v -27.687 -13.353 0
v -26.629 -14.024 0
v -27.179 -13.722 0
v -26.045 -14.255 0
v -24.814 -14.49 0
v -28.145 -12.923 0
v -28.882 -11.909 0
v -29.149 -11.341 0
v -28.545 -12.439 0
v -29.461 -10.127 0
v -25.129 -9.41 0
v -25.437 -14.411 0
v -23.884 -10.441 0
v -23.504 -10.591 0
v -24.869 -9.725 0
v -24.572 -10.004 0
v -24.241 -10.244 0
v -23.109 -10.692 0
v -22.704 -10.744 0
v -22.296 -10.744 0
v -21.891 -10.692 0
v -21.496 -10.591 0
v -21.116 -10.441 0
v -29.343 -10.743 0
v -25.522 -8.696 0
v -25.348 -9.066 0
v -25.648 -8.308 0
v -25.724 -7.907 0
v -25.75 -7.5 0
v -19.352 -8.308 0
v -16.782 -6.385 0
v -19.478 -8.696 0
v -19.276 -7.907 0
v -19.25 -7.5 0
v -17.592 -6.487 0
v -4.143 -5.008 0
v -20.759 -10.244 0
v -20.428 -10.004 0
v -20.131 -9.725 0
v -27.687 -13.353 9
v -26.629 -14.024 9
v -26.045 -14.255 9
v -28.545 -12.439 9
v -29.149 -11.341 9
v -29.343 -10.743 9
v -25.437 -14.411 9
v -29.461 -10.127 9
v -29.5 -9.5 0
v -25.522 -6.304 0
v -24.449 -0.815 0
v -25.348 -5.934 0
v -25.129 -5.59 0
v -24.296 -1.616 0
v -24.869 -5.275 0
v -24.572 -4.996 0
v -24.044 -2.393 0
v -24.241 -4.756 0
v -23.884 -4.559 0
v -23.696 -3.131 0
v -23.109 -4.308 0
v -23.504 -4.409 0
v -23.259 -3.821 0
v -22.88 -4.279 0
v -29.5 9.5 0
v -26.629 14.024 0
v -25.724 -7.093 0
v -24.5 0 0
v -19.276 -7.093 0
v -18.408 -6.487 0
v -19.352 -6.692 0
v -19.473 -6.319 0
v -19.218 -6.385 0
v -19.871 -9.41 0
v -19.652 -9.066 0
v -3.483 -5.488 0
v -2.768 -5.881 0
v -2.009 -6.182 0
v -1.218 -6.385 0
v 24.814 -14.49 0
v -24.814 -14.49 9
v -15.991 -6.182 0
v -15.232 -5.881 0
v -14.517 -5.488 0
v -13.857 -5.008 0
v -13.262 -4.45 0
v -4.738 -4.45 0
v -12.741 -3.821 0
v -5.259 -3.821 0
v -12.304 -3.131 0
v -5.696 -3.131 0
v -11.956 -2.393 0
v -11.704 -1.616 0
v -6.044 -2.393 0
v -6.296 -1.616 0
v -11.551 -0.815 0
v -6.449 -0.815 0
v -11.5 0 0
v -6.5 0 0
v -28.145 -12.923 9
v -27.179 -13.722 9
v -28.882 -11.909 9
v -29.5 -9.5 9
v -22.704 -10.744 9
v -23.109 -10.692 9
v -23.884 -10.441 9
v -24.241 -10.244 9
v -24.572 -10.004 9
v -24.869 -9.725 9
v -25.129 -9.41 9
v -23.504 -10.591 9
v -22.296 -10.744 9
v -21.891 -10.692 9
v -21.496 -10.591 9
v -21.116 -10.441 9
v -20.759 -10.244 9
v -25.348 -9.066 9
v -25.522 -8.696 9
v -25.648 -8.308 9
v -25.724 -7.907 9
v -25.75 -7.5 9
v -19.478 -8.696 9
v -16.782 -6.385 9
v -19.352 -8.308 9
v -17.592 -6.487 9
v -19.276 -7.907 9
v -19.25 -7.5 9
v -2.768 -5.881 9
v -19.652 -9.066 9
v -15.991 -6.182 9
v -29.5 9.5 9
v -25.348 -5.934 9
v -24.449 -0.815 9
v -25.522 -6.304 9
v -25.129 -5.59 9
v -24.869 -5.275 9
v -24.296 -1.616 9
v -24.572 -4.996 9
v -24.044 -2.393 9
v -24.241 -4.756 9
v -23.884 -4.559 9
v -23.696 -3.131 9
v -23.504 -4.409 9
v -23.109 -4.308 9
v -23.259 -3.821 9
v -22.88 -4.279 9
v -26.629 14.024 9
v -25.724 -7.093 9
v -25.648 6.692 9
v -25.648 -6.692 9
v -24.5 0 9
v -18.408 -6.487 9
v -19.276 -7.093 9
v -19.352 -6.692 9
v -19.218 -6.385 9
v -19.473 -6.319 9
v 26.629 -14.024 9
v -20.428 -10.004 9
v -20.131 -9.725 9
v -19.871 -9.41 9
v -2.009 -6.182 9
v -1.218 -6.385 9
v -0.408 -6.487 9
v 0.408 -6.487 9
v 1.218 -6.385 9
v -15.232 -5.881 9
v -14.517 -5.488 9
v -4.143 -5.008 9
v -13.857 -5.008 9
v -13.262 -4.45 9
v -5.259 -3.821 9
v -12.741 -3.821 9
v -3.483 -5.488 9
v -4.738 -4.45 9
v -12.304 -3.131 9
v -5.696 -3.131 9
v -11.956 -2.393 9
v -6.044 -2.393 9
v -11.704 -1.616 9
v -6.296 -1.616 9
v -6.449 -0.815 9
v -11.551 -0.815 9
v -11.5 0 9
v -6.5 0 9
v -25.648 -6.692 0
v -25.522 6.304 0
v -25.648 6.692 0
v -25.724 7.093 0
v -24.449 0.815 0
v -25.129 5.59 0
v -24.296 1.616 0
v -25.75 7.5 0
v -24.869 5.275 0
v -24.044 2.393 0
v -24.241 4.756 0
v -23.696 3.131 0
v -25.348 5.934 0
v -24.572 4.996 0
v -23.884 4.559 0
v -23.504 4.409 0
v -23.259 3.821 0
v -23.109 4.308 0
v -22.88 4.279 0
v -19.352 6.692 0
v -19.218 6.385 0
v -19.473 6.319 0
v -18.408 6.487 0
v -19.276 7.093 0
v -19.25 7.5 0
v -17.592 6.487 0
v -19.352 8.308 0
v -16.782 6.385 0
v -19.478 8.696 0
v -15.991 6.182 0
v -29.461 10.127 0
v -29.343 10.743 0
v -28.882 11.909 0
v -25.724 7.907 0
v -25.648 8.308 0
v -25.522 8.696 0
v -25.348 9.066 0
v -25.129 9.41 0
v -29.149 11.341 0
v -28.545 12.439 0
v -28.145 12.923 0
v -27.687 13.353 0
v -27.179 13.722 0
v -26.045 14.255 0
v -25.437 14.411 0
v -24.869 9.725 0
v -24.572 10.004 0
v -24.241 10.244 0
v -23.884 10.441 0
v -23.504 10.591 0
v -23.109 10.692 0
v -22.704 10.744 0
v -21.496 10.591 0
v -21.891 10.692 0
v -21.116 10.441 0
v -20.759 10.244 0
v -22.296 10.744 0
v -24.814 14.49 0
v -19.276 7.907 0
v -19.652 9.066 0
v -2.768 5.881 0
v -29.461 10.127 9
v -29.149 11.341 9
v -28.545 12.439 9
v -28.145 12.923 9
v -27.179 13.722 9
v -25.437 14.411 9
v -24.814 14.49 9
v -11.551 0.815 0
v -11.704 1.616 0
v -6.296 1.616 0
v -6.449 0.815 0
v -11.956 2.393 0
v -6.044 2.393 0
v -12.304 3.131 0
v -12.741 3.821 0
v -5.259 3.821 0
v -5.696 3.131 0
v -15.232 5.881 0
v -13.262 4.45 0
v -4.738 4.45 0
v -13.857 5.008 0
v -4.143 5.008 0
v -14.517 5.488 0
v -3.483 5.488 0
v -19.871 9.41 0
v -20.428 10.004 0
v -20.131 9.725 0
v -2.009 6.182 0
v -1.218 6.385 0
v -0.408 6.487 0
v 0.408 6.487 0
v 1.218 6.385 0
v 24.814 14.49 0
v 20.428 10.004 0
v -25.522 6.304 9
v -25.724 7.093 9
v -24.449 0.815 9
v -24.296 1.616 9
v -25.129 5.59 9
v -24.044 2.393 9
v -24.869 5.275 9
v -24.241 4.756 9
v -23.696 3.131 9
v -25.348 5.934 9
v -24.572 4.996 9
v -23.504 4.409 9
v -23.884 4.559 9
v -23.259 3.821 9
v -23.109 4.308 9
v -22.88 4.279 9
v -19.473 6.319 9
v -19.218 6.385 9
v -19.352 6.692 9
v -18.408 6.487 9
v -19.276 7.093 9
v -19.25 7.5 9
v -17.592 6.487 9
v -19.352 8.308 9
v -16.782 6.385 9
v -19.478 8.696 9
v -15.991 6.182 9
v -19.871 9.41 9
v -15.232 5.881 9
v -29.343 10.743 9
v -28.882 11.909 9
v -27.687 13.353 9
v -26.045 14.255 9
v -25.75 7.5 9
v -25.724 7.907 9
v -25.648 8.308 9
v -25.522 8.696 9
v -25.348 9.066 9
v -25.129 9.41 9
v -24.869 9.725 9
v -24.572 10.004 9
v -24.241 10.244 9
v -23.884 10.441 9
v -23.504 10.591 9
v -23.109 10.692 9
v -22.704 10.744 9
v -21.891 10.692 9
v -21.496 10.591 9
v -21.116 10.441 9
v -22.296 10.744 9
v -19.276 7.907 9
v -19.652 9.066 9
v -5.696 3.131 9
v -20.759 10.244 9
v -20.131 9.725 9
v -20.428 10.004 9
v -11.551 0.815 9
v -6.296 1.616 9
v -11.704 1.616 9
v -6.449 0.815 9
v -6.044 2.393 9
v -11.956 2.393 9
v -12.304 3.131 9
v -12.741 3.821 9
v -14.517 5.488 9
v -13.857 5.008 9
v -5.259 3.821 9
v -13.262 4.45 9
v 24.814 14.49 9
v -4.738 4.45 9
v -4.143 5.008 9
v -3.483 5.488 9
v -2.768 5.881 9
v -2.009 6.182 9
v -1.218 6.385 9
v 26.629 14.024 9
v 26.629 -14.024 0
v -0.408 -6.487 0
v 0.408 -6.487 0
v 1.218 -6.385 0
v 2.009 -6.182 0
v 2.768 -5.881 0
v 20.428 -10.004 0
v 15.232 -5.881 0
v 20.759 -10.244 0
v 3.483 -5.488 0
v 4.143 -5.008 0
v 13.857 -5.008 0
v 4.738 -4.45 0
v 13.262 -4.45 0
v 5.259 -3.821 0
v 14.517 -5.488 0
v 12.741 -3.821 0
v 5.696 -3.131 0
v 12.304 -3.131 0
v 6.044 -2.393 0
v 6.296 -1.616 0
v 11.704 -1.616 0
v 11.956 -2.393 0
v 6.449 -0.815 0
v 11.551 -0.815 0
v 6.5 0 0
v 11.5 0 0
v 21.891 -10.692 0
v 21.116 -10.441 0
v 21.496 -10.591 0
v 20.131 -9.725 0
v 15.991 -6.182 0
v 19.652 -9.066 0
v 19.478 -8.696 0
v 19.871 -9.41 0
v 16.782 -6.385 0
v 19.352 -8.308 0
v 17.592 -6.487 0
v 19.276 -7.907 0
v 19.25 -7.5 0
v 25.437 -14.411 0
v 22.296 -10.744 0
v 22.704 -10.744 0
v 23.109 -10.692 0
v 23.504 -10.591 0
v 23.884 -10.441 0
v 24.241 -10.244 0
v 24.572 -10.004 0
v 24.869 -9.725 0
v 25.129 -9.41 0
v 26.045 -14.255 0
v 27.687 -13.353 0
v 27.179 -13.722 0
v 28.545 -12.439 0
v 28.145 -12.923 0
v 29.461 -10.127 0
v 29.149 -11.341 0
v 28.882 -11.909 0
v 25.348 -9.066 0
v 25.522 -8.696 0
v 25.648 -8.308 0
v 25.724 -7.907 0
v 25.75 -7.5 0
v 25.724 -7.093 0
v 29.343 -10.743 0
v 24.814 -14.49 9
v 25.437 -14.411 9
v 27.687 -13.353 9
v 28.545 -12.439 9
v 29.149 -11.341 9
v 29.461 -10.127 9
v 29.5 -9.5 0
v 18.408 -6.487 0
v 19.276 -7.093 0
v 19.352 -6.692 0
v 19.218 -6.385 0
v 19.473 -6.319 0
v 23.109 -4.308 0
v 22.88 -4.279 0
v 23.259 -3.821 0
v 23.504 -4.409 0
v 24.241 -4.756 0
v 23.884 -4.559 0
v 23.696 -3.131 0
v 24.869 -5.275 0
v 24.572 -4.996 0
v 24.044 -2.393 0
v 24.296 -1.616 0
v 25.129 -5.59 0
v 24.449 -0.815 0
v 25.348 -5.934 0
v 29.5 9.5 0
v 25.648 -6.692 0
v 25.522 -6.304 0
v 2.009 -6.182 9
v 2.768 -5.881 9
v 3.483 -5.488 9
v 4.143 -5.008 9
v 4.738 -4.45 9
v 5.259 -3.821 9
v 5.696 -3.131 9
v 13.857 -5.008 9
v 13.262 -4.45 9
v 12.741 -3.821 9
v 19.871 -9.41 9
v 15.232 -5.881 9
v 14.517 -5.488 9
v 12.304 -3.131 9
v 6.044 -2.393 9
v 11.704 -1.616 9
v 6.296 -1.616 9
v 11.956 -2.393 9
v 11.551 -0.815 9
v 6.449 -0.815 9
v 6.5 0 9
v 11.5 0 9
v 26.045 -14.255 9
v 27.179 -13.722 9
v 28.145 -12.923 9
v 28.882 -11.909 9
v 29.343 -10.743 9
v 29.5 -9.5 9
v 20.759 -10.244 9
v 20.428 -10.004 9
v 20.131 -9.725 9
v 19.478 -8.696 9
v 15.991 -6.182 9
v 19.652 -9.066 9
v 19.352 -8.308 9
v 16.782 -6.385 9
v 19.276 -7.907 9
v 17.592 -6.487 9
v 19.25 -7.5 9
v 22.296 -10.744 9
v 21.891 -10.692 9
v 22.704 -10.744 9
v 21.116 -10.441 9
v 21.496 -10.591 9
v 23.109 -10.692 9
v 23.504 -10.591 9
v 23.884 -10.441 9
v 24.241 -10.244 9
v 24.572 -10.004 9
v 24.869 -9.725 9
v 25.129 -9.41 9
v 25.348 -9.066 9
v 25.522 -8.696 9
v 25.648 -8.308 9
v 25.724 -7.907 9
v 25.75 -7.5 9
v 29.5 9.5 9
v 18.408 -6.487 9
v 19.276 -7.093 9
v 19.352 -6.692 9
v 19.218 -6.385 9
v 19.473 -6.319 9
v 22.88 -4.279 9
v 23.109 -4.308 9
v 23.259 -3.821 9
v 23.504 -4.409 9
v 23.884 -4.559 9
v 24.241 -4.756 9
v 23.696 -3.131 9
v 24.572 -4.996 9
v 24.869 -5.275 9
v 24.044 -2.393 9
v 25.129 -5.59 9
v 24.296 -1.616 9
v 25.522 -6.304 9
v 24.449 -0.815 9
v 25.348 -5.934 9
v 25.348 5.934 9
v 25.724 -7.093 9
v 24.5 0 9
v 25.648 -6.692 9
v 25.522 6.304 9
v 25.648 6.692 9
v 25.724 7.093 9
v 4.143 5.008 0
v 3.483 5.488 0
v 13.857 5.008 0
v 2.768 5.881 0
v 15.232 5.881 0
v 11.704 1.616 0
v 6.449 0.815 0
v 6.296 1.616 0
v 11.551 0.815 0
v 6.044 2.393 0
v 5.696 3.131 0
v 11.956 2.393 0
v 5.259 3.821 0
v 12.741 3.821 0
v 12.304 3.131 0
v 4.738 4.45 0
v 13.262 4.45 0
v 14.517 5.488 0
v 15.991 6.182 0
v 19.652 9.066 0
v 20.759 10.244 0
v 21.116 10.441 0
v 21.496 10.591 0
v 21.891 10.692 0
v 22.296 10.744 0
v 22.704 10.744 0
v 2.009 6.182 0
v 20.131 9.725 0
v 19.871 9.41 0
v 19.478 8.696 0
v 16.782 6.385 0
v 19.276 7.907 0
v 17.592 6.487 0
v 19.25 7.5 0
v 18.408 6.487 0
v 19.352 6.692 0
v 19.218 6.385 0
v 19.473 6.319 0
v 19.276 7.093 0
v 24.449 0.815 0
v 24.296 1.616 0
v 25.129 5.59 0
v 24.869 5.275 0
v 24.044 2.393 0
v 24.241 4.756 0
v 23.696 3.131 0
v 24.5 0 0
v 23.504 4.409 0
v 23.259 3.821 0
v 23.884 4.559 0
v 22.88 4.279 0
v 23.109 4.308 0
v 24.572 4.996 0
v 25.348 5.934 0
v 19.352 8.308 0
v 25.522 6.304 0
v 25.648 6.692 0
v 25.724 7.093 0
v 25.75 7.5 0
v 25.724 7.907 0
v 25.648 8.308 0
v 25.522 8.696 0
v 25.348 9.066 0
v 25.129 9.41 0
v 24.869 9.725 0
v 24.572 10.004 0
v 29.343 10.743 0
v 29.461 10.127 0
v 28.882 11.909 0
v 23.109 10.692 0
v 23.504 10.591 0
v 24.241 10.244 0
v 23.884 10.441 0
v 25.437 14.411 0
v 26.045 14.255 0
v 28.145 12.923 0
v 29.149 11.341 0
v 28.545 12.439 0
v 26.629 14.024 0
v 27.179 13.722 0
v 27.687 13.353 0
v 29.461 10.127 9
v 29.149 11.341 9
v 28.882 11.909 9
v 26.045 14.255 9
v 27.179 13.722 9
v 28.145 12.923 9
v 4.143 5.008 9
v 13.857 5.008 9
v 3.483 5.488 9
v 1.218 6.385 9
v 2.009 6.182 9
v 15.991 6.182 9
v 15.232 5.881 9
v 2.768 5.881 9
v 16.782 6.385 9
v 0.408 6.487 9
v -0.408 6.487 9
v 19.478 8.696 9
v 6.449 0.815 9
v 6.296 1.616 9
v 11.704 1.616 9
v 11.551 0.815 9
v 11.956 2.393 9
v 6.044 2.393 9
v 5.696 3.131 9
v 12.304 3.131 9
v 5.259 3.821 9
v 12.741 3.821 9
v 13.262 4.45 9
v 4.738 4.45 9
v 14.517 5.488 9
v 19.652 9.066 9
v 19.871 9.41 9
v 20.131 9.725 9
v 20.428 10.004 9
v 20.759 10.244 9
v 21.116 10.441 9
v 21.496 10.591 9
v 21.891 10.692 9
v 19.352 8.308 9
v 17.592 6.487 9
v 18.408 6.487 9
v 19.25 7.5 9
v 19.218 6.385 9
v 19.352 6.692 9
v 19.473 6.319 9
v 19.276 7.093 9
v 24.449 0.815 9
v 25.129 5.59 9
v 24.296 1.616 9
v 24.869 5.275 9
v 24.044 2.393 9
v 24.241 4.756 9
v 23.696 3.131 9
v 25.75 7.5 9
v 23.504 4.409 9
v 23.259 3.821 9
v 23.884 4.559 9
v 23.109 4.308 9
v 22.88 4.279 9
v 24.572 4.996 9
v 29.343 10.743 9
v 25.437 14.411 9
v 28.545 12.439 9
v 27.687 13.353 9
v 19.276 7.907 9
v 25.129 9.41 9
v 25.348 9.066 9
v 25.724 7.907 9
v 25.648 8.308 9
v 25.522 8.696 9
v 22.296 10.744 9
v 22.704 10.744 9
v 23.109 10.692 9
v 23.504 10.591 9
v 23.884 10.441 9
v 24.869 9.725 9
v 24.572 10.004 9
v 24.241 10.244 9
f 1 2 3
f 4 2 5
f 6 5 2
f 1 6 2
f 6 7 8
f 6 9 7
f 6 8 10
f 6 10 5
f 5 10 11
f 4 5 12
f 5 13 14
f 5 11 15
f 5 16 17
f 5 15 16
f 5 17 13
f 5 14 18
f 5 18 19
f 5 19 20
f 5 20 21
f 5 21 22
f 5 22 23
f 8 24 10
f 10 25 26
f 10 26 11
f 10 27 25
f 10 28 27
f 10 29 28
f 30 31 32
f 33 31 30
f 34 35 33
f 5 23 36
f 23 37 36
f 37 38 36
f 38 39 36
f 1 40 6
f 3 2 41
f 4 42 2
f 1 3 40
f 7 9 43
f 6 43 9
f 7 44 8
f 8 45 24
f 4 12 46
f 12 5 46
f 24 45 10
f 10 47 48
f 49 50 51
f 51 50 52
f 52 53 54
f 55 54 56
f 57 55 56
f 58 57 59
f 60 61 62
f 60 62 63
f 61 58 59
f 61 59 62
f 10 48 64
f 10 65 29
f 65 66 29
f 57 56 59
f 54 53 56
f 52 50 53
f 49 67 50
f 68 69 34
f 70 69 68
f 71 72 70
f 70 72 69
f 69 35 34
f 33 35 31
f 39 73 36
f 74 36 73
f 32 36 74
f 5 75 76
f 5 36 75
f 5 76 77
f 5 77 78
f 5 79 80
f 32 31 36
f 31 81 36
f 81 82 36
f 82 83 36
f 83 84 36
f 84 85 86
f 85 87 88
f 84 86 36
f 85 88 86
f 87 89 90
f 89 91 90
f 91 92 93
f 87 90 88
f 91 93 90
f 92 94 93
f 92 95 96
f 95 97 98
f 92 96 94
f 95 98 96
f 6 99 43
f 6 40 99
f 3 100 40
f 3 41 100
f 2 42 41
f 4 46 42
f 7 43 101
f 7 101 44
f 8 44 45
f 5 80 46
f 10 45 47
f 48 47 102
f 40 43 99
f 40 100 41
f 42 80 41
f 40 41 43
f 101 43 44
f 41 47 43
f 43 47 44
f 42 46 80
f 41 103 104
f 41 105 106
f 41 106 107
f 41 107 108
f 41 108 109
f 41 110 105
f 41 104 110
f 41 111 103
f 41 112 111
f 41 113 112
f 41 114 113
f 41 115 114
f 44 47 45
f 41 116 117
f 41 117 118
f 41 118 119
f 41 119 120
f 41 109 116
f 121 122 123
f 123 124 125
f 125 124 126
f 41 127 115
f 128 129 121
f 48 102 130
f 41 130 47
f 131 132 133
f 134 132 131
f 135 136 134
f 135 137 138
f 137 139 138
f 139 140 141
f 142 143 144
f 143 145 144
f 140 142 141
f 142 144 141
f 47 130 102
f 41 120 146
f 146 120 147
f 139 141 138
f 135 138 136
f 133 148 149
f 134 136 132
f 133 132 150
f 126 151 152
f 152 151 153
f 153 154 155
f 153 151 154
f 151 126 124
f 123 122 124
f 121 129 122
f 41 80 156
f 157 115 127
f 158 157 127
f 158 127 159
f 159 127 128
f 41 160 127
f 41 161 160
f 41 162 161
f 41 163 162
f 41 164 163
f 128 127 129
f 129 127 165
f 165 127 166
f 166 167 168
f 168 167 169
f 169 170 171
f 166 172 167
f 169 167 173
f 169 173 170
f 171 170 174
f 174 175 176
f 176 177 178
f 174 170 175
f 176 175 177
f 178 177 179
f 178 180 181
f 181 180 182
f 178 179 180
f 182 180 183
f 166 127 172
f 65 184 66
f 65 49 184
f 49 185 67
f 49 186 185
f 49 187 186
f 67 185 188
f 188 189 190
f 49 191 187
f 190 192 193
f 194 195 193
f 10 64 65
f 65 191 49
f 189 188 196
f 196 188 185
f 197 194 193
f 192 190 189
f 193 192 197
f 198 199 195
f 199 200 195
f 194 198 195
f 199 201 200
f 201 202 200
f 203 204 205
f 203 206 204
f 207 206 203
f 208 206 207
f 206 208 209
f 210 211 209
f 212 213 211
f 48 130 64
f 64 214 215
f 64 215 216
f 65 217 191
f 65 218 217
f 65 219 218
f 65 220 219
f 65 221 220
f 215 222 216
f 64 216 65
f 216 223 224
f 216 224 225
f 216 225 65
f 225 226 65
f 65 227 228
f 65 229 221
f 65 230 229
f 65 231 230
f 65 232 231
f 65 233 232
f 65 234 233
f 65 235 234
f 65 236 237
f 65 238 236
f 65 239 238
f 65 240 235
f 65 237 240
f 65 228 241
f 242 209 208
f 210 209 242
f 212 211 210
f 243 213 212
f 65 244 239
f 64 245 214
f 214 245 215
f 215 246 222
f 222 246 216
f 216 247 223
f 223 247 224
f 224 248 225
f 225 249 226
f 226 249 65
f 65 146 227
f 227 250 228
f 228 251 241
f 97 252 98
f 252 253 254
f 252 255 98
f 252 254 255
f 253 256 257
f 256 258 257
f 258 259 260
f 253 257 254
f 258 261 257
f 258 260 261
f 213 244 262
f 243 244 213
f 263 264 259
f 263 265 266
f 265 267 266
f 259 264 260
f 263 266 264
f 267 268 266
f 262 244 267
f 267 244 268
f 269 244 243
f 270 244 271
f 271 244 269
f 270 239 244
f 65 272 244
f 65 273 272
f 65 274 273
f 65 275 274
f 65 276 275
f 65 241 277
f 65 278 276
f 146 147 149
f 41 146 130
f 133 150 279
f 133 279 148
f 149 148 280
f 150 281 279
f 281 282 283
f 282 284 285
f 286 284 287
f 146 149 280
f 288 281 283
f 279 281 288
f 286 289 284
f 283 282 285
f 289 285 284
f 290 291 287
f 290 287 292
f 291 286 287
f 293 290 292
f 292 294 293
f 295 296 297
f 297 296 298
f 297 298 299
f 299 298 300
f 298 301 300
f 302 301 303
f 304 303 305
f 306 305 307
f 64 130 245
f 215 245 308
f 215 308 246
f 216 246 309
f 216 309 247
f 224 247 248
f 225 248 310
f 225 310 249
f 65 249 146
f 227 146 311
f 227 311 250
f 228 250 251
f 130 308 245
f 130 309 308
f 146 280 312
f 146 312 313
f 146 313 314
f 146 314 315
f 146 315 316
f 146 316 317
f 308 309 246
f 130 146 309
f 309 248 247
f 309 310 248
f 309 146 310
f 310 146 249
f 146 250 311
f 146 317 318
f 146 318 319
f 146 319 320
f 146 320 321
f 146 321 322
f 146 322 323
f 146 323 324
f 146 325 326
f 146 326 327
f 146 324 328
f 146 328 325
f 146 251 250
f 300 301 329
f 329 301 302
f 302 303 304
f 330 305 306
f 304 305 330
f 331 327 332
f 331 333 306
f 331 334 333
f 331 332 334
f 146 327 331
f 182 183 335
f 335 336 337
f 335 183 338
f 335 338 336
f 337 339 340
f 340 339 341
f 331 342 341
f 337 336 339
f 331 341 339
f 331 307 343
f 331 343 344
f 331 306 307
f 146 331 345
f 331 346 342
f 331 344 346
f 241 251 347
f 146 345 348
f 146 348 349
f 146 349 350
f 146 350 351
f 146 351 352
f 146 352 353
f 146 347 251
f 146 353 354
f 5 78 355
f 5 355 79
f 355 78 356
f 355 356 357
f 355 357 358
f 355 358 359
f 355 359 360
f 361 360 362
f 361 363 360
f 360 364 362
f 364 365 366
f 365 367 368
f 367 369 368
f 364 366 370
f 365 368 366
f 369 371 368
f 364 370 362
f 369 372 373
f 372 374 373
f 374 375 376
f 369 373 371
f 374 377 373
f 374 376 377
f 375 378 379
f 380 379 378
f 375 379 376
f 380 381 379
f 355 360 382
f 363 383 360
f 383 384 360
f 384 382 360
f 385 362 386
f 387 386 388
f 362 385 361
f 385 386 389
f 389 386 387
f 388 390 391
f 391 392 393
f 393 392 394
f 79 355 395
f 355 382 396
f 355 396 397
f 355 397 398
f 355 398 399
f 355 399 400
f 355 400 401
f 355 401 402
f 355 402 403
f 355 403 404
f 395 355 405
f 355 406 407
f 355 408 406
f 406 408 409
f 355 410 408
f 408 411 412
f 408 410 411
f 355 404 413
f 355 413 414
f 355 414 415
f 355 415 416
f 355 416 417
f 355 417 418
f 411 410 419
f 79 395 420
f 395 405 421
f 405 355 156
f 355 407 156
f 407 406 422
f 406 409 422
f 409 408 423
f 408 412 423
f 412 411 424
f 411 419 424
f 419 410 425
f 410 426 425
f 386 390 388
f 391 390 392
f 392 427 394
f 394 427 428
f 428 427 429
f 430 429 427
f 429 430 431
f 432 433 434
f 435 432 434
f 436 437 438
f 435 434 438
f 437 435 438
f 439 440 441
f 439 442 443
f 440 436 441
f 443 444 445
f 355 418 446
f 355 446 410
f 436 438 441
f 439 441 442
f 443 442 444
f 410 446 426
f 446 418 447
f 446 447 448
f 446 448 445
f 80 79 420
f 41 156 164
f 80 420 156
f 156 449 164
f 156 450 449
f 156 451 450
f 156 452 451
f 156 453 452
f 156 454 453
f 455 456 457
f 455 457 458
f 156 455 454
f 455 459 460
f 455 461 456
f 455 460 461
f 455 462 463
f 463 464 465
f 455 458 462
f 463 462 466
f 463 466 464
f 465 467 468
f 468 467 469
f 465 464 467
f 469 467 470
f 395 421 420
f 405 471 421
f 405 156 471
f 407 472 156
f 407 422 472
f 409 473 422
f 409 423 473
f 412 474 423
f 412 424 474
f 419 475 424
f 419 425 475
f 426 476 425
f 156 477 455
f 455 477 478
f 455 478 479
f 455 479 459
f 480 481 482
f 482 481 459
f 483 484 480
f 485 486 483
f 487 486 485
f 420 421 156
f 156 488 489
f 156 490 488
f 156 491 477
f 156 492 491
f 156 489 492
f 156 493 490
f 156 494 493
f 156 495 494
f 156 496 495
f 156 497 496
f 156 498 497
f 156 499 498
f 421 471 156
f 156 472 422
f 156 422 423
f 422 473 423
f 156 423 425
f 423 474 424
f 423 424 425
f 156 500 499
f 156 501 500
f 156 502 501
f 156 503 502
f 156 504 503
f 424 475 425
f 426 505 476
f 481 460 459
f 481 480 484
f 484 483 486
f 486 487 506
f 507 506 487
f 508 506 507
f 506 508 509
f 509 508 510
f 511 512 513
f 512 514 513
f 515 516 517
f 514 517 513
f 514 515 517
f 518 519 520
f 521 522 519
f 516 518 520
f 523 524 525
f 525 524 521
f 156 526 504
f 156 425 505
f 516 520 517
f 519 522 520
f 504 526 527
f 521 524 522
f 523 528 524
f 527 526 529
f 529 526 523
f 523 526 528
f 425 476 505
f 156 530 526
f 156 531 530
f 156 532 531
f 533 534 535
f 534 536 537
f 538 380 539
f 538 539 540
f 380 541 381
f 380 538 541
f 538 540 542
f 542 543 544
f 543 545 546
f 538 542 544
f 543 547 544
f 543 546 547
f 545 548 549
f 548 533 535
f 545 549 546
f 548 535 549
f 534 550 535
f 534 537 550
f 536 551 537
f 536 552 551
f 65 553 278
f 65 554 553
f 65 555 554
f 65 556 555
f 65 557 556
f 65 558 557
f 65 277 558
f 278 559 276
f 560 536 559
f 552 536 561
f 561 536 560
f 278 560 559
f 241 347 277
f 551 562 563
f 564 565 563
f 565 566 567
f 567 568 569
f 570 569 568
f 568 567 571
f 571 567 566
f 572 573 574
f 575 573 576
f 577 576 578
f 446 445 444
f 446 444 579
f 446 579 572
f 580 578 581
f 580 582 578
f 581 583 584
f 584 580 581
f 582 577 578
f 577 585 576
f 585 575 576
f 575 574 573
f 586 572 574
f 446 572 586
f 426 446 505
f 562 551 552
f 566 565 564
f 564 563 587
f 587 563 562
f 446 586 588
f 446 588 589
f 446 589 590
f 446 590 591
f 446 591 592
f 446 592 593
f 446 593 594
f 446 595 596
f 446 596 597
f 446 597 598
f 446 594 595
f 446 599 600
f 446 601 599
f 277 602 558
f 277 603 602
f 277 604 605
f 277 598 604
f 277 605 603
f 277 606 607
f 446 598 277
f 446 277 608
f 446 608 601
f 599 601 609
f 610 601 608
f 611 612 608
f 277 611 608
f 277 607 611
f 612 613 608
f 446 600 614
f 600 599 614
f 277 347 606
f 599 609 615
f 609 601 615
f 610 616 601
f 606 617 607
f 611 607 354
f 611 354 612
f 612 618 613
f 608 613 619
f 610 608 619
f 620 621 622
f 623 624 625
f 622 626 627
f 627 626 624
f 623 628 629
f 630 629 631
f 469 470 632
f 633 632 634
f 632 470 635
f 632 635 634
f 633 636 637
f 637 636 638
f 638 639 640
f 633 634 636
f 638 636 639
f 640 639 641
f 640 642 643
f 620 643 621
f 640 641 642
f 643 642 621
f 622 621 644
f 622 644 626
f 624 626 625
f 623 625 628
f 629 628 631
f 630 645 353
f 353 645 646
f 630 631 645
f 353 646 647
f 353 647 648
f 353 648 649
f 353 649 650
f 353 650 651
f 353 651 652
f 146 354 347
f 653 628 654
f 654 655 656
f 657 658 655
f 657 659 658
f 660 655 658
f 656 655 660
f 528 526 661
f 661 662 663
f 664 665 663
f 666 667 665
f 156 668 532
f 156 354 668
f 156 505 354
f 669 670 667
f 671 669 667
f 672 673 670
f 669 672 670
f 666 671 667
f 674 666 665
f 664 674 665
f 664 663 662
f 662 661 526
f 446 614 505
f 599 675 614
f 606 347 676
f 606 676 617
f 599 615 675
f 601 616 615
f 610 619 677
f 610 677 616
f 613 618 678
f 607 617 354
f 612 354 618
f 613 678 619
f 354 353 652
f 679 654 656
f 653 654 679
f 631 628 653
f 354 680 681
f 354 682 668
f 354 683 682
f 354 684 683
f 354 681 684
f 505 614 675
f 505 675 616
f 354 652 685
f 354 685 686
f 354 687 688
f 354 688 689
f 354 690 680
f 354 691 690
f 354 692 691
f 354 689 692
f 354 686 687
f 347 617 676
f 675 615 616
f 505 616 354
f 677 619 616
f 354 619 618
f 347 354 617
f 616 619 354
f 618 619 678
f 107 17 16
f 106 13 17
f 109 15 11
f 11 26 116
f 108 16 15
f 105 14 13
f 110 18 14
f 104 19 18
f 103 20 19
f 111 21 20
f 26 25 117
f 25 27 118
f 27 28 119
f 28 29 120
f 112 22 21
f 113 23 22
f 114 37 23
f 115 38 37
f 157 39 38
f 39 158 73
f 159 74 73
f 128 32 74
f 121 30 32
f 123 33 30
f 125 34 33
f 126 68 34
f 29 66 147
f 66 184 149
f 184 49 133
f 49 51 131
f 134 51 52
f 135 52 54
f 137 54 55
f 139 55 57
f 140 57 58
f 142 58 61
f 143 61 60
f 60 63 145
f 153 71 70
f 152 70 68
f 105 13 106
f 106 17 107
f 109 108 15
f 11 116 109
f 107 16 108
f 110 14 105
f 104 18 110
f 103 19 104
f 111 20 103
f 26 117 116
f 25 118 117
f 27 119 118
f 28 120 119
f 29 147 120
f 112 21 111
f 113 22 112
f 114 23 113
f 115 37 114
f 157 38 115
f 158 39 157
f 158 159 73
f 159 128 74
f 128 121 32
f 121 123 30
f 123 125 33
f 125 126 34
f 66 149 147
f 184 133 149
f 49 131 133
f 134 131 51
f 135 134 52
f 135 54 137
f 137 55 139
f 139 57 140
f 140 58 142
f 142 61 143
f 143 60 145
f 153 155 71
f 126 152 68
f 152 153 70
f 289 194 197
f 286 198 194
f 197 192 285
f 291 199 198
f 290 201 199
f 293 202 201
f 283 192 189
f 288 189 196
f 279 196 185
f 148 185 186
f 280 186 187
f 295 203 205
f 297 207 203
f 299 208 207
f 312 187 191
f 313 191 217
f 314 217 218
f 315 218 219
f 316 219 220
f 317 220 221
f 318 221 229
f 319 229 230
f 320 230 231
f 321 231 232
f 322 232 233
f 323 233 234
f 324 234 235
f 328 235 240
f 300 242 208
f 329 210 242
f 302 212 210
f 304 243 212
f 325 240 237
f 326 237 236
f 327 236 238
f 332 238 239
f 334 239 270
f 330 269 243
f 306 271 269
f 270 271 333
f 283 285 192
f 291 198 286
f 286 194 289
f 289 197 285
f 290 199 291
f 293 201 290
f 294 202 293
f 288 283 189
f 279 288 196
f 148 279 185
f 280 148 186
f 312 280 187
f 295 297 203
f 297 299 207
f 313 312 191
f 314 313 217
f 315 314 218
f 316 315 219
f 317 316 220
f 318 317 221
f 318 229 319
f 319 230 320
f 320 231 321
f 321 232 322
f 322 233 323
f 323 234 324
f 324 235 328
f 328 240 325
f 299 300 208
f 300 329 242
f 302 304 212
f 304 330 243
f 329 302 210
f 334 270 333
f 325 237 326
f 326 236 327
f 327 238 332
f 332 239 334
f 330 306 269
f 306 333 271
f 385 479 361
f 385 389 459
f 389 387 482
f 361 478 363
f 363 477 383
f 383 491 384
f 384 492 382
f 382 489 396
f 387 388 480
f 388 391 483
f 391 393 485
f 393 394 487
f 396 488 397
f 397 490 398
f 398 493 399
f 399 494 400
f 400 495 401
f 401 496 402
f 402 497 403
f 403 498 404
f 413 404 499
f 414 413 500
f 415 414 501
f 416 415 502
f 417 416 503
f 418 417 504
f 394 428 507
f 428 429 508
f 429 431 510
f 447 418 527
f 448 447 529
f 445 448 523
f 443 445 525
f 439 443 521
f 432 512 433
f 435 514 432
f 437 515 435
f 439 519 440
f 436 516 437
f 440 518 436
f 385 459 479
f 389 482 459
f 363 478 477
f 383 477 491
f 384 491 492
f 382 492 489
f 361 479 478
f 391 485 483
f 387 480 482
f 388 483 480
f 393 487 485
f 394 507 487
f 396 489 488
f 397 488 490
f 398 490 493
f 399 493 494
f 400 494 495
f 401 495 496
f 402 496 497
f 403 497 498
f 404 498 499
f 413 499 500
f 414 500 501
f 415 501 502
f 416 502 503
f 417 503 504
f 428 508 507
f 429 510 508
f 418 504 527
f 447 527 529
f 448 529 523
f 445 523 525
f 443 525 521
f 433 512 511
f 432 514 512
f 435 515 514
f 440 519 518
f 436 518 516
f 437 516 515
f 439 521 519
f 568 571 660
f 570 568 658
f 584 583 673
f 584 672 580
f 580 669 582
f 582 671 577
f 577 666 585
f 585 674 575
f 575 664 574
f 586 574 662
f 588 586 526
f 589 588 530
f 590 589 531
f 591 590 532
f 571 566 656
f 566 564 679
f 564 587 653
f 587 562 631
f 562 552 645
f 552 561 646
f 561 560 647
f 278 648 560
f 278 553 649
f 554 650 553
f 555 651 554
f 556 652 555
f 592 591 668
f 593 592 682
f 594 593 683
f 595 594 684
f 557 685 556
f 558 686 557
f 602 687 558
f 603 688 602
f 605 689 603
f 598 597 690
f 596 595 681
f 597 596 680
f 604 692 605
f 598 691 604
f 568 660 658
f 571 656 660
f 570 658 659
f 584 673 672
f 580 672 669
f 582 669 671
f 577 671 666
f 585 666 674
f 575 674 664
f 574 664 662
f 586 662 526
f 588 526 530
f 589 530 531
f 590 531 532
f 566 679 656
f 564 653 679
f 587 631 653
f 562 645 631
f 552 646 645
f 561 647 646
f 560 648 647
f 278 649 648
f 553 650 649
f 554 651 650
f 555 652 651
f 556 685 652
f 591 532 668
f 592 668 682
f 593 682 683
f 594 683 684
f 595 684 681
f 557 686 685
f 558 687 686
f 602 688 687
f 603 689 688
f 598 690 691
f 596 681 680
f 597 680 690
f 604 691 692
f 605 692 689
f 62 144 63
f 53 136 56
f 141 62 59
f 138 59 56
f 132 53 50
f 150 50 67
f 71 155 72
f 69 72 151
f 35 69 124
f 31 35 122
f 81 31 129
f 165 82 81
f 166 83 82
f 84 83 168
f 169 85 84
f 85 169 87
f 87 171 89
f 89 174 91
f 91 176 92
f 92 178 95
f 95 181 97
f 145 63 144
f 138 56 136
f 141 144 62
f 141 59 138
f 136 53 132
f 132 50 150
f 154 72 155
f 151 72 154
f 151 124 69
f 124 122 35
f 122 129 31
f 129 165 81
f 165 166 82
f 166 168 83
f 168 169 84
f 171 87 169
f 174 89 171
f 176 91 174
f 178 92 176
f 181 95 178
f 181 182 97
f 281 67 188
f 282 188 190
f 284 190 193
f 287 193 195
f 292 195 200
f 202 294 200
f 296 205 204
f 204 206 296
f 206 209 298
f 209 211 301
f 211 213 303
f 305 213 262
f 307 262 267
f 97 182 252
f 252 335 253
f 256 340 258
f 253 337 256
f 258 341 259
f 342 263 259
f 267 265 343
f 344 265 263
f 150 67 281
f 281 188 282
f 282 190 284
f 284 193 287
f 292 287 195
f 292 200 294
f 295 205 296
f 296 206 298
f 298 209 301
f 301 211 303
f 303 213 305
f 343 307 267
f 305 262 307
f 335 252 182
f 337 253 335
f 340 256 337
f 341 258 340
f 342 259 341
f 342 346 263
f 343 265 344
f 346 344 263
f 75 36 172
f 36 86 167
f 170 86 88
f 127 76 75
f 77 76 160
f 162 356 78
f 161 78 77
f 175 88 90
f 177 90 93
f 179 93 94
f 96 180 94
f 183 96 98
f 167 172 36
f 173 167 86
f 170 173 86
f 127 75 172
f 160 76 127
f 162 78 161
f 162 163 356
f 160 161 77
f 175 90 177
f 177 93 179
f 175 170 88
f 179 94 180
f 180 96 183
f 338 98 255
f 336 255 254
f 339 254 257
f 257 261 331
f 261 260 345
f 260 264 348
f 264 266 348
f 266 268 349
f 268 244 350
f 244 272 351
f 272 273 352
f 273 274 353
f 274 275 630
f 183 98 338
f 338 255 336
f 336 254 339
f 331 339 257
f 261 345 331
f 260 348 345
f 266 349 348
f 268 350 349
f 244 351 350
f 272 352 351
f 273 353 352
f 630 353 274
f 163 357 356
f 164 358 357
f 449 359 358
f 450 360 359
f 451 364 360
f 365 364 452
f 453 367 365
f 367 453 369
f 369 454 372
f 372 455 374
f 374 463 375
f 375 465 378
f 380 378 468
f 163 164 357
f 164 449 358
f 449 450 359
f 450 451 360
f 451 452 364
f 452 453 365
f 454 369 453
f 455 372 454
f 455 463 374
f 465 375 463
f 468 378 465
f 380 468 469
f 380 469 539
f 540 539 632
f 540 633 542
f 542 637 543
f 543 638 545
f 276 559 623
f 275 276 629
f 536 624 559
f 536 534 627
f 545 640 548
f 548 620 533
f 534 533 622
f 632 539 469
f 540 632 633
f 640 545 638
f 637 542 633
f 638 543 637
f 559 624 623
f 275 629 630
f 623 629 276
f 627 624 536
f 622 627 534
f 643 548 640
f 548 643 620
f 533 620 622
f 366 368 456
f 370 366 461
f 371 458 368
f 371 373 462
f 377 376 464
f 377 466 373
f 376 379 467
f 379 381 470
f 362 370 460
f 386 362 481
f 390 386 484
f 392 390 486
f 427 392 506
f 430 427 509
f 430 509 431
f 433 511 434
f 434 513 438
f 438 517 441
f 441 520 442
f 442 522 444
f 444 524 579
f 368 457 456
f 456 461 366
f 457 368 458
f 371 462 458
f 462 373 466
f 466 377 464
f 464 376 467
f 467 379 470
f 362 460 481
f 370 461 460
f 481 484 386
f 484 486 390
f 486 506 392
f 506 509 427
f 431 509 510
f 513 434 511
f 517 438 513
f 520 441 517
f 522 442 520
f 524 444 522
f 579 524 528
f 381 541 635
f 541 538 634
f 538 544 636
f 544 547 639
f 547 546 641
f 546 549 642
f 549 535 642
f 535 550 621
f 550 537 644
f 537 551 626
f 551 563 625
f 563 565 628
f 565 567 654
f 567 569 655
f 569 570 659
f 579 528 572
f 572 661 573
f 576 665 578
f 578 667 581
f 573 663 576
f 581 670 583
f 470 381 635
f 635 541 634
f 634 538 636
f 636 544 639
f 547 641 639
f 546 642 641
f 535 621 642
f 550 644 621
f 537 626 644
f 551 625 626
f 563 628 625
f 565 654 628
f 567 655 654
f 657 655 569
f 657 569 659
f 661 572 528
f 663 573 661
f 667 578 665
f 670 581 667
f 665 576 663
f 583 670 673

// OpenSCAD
$fn = 50;

difference() {
	union() {
		hull() {
			translate(v = [-24.5, 9.5, 0]) {
				cylinder(h = 9, r = 5);
			}
			translate(v = [24.5, 9.5, 0]) {
				cylinder(h = 9, r = 5);
			}
			translate(v = [-24.5, -9.5, 0]) {
				cylinder(h = 9, r = 5);
			}
			translate(v = [24.5, -9.5, 0]) {
				cylinder(h = 9, r = 5);
			}
		}
	}
	union() {
		translate(v = [-22.5, -7.5, -100.0]) {
			cylinder(h = 200, r = 3.25);
		}
		translate(v = [-22.5, 7.5, -100.0]) {
			cylinder(h = 200, r = 3.25);
		}
		translate(v = [22.5, -7.5, -100.0]) {
			cylinder(h = 200, r = 3.25);
		}
		translate(v = [22.5, 7.5, -100.0]) {
			cylinder(h = 200, r = 3.25);
		}
		translate(v = [-22.5, -7.5, -100.0]) {
			cylinder(h = 200, r = 1.8);
		}
		translate(v = [-22.5, 7.5, -100.0]) {
			cylinder(h = 200, r = 1.8);
		}
		translate(v = [22.5, -7.5, -100.0]) {
			cylinder(h = 200, r = 1.8);
		}
		translate(v = [22.5, 7.5, -100.0]) {
			cylinder(h = 200, r = 1.8);
		}
		translate(v = [-18.0, 0, 0.0]) {
			cylinder(h = 9, r = 6.5);
		}
		cylinder(h = 9, r = 6.5);
		translate(v = [18.0, 0, 0.0]) {
			cylinder(h = 9, r = 6.5);
		}
	}
}
